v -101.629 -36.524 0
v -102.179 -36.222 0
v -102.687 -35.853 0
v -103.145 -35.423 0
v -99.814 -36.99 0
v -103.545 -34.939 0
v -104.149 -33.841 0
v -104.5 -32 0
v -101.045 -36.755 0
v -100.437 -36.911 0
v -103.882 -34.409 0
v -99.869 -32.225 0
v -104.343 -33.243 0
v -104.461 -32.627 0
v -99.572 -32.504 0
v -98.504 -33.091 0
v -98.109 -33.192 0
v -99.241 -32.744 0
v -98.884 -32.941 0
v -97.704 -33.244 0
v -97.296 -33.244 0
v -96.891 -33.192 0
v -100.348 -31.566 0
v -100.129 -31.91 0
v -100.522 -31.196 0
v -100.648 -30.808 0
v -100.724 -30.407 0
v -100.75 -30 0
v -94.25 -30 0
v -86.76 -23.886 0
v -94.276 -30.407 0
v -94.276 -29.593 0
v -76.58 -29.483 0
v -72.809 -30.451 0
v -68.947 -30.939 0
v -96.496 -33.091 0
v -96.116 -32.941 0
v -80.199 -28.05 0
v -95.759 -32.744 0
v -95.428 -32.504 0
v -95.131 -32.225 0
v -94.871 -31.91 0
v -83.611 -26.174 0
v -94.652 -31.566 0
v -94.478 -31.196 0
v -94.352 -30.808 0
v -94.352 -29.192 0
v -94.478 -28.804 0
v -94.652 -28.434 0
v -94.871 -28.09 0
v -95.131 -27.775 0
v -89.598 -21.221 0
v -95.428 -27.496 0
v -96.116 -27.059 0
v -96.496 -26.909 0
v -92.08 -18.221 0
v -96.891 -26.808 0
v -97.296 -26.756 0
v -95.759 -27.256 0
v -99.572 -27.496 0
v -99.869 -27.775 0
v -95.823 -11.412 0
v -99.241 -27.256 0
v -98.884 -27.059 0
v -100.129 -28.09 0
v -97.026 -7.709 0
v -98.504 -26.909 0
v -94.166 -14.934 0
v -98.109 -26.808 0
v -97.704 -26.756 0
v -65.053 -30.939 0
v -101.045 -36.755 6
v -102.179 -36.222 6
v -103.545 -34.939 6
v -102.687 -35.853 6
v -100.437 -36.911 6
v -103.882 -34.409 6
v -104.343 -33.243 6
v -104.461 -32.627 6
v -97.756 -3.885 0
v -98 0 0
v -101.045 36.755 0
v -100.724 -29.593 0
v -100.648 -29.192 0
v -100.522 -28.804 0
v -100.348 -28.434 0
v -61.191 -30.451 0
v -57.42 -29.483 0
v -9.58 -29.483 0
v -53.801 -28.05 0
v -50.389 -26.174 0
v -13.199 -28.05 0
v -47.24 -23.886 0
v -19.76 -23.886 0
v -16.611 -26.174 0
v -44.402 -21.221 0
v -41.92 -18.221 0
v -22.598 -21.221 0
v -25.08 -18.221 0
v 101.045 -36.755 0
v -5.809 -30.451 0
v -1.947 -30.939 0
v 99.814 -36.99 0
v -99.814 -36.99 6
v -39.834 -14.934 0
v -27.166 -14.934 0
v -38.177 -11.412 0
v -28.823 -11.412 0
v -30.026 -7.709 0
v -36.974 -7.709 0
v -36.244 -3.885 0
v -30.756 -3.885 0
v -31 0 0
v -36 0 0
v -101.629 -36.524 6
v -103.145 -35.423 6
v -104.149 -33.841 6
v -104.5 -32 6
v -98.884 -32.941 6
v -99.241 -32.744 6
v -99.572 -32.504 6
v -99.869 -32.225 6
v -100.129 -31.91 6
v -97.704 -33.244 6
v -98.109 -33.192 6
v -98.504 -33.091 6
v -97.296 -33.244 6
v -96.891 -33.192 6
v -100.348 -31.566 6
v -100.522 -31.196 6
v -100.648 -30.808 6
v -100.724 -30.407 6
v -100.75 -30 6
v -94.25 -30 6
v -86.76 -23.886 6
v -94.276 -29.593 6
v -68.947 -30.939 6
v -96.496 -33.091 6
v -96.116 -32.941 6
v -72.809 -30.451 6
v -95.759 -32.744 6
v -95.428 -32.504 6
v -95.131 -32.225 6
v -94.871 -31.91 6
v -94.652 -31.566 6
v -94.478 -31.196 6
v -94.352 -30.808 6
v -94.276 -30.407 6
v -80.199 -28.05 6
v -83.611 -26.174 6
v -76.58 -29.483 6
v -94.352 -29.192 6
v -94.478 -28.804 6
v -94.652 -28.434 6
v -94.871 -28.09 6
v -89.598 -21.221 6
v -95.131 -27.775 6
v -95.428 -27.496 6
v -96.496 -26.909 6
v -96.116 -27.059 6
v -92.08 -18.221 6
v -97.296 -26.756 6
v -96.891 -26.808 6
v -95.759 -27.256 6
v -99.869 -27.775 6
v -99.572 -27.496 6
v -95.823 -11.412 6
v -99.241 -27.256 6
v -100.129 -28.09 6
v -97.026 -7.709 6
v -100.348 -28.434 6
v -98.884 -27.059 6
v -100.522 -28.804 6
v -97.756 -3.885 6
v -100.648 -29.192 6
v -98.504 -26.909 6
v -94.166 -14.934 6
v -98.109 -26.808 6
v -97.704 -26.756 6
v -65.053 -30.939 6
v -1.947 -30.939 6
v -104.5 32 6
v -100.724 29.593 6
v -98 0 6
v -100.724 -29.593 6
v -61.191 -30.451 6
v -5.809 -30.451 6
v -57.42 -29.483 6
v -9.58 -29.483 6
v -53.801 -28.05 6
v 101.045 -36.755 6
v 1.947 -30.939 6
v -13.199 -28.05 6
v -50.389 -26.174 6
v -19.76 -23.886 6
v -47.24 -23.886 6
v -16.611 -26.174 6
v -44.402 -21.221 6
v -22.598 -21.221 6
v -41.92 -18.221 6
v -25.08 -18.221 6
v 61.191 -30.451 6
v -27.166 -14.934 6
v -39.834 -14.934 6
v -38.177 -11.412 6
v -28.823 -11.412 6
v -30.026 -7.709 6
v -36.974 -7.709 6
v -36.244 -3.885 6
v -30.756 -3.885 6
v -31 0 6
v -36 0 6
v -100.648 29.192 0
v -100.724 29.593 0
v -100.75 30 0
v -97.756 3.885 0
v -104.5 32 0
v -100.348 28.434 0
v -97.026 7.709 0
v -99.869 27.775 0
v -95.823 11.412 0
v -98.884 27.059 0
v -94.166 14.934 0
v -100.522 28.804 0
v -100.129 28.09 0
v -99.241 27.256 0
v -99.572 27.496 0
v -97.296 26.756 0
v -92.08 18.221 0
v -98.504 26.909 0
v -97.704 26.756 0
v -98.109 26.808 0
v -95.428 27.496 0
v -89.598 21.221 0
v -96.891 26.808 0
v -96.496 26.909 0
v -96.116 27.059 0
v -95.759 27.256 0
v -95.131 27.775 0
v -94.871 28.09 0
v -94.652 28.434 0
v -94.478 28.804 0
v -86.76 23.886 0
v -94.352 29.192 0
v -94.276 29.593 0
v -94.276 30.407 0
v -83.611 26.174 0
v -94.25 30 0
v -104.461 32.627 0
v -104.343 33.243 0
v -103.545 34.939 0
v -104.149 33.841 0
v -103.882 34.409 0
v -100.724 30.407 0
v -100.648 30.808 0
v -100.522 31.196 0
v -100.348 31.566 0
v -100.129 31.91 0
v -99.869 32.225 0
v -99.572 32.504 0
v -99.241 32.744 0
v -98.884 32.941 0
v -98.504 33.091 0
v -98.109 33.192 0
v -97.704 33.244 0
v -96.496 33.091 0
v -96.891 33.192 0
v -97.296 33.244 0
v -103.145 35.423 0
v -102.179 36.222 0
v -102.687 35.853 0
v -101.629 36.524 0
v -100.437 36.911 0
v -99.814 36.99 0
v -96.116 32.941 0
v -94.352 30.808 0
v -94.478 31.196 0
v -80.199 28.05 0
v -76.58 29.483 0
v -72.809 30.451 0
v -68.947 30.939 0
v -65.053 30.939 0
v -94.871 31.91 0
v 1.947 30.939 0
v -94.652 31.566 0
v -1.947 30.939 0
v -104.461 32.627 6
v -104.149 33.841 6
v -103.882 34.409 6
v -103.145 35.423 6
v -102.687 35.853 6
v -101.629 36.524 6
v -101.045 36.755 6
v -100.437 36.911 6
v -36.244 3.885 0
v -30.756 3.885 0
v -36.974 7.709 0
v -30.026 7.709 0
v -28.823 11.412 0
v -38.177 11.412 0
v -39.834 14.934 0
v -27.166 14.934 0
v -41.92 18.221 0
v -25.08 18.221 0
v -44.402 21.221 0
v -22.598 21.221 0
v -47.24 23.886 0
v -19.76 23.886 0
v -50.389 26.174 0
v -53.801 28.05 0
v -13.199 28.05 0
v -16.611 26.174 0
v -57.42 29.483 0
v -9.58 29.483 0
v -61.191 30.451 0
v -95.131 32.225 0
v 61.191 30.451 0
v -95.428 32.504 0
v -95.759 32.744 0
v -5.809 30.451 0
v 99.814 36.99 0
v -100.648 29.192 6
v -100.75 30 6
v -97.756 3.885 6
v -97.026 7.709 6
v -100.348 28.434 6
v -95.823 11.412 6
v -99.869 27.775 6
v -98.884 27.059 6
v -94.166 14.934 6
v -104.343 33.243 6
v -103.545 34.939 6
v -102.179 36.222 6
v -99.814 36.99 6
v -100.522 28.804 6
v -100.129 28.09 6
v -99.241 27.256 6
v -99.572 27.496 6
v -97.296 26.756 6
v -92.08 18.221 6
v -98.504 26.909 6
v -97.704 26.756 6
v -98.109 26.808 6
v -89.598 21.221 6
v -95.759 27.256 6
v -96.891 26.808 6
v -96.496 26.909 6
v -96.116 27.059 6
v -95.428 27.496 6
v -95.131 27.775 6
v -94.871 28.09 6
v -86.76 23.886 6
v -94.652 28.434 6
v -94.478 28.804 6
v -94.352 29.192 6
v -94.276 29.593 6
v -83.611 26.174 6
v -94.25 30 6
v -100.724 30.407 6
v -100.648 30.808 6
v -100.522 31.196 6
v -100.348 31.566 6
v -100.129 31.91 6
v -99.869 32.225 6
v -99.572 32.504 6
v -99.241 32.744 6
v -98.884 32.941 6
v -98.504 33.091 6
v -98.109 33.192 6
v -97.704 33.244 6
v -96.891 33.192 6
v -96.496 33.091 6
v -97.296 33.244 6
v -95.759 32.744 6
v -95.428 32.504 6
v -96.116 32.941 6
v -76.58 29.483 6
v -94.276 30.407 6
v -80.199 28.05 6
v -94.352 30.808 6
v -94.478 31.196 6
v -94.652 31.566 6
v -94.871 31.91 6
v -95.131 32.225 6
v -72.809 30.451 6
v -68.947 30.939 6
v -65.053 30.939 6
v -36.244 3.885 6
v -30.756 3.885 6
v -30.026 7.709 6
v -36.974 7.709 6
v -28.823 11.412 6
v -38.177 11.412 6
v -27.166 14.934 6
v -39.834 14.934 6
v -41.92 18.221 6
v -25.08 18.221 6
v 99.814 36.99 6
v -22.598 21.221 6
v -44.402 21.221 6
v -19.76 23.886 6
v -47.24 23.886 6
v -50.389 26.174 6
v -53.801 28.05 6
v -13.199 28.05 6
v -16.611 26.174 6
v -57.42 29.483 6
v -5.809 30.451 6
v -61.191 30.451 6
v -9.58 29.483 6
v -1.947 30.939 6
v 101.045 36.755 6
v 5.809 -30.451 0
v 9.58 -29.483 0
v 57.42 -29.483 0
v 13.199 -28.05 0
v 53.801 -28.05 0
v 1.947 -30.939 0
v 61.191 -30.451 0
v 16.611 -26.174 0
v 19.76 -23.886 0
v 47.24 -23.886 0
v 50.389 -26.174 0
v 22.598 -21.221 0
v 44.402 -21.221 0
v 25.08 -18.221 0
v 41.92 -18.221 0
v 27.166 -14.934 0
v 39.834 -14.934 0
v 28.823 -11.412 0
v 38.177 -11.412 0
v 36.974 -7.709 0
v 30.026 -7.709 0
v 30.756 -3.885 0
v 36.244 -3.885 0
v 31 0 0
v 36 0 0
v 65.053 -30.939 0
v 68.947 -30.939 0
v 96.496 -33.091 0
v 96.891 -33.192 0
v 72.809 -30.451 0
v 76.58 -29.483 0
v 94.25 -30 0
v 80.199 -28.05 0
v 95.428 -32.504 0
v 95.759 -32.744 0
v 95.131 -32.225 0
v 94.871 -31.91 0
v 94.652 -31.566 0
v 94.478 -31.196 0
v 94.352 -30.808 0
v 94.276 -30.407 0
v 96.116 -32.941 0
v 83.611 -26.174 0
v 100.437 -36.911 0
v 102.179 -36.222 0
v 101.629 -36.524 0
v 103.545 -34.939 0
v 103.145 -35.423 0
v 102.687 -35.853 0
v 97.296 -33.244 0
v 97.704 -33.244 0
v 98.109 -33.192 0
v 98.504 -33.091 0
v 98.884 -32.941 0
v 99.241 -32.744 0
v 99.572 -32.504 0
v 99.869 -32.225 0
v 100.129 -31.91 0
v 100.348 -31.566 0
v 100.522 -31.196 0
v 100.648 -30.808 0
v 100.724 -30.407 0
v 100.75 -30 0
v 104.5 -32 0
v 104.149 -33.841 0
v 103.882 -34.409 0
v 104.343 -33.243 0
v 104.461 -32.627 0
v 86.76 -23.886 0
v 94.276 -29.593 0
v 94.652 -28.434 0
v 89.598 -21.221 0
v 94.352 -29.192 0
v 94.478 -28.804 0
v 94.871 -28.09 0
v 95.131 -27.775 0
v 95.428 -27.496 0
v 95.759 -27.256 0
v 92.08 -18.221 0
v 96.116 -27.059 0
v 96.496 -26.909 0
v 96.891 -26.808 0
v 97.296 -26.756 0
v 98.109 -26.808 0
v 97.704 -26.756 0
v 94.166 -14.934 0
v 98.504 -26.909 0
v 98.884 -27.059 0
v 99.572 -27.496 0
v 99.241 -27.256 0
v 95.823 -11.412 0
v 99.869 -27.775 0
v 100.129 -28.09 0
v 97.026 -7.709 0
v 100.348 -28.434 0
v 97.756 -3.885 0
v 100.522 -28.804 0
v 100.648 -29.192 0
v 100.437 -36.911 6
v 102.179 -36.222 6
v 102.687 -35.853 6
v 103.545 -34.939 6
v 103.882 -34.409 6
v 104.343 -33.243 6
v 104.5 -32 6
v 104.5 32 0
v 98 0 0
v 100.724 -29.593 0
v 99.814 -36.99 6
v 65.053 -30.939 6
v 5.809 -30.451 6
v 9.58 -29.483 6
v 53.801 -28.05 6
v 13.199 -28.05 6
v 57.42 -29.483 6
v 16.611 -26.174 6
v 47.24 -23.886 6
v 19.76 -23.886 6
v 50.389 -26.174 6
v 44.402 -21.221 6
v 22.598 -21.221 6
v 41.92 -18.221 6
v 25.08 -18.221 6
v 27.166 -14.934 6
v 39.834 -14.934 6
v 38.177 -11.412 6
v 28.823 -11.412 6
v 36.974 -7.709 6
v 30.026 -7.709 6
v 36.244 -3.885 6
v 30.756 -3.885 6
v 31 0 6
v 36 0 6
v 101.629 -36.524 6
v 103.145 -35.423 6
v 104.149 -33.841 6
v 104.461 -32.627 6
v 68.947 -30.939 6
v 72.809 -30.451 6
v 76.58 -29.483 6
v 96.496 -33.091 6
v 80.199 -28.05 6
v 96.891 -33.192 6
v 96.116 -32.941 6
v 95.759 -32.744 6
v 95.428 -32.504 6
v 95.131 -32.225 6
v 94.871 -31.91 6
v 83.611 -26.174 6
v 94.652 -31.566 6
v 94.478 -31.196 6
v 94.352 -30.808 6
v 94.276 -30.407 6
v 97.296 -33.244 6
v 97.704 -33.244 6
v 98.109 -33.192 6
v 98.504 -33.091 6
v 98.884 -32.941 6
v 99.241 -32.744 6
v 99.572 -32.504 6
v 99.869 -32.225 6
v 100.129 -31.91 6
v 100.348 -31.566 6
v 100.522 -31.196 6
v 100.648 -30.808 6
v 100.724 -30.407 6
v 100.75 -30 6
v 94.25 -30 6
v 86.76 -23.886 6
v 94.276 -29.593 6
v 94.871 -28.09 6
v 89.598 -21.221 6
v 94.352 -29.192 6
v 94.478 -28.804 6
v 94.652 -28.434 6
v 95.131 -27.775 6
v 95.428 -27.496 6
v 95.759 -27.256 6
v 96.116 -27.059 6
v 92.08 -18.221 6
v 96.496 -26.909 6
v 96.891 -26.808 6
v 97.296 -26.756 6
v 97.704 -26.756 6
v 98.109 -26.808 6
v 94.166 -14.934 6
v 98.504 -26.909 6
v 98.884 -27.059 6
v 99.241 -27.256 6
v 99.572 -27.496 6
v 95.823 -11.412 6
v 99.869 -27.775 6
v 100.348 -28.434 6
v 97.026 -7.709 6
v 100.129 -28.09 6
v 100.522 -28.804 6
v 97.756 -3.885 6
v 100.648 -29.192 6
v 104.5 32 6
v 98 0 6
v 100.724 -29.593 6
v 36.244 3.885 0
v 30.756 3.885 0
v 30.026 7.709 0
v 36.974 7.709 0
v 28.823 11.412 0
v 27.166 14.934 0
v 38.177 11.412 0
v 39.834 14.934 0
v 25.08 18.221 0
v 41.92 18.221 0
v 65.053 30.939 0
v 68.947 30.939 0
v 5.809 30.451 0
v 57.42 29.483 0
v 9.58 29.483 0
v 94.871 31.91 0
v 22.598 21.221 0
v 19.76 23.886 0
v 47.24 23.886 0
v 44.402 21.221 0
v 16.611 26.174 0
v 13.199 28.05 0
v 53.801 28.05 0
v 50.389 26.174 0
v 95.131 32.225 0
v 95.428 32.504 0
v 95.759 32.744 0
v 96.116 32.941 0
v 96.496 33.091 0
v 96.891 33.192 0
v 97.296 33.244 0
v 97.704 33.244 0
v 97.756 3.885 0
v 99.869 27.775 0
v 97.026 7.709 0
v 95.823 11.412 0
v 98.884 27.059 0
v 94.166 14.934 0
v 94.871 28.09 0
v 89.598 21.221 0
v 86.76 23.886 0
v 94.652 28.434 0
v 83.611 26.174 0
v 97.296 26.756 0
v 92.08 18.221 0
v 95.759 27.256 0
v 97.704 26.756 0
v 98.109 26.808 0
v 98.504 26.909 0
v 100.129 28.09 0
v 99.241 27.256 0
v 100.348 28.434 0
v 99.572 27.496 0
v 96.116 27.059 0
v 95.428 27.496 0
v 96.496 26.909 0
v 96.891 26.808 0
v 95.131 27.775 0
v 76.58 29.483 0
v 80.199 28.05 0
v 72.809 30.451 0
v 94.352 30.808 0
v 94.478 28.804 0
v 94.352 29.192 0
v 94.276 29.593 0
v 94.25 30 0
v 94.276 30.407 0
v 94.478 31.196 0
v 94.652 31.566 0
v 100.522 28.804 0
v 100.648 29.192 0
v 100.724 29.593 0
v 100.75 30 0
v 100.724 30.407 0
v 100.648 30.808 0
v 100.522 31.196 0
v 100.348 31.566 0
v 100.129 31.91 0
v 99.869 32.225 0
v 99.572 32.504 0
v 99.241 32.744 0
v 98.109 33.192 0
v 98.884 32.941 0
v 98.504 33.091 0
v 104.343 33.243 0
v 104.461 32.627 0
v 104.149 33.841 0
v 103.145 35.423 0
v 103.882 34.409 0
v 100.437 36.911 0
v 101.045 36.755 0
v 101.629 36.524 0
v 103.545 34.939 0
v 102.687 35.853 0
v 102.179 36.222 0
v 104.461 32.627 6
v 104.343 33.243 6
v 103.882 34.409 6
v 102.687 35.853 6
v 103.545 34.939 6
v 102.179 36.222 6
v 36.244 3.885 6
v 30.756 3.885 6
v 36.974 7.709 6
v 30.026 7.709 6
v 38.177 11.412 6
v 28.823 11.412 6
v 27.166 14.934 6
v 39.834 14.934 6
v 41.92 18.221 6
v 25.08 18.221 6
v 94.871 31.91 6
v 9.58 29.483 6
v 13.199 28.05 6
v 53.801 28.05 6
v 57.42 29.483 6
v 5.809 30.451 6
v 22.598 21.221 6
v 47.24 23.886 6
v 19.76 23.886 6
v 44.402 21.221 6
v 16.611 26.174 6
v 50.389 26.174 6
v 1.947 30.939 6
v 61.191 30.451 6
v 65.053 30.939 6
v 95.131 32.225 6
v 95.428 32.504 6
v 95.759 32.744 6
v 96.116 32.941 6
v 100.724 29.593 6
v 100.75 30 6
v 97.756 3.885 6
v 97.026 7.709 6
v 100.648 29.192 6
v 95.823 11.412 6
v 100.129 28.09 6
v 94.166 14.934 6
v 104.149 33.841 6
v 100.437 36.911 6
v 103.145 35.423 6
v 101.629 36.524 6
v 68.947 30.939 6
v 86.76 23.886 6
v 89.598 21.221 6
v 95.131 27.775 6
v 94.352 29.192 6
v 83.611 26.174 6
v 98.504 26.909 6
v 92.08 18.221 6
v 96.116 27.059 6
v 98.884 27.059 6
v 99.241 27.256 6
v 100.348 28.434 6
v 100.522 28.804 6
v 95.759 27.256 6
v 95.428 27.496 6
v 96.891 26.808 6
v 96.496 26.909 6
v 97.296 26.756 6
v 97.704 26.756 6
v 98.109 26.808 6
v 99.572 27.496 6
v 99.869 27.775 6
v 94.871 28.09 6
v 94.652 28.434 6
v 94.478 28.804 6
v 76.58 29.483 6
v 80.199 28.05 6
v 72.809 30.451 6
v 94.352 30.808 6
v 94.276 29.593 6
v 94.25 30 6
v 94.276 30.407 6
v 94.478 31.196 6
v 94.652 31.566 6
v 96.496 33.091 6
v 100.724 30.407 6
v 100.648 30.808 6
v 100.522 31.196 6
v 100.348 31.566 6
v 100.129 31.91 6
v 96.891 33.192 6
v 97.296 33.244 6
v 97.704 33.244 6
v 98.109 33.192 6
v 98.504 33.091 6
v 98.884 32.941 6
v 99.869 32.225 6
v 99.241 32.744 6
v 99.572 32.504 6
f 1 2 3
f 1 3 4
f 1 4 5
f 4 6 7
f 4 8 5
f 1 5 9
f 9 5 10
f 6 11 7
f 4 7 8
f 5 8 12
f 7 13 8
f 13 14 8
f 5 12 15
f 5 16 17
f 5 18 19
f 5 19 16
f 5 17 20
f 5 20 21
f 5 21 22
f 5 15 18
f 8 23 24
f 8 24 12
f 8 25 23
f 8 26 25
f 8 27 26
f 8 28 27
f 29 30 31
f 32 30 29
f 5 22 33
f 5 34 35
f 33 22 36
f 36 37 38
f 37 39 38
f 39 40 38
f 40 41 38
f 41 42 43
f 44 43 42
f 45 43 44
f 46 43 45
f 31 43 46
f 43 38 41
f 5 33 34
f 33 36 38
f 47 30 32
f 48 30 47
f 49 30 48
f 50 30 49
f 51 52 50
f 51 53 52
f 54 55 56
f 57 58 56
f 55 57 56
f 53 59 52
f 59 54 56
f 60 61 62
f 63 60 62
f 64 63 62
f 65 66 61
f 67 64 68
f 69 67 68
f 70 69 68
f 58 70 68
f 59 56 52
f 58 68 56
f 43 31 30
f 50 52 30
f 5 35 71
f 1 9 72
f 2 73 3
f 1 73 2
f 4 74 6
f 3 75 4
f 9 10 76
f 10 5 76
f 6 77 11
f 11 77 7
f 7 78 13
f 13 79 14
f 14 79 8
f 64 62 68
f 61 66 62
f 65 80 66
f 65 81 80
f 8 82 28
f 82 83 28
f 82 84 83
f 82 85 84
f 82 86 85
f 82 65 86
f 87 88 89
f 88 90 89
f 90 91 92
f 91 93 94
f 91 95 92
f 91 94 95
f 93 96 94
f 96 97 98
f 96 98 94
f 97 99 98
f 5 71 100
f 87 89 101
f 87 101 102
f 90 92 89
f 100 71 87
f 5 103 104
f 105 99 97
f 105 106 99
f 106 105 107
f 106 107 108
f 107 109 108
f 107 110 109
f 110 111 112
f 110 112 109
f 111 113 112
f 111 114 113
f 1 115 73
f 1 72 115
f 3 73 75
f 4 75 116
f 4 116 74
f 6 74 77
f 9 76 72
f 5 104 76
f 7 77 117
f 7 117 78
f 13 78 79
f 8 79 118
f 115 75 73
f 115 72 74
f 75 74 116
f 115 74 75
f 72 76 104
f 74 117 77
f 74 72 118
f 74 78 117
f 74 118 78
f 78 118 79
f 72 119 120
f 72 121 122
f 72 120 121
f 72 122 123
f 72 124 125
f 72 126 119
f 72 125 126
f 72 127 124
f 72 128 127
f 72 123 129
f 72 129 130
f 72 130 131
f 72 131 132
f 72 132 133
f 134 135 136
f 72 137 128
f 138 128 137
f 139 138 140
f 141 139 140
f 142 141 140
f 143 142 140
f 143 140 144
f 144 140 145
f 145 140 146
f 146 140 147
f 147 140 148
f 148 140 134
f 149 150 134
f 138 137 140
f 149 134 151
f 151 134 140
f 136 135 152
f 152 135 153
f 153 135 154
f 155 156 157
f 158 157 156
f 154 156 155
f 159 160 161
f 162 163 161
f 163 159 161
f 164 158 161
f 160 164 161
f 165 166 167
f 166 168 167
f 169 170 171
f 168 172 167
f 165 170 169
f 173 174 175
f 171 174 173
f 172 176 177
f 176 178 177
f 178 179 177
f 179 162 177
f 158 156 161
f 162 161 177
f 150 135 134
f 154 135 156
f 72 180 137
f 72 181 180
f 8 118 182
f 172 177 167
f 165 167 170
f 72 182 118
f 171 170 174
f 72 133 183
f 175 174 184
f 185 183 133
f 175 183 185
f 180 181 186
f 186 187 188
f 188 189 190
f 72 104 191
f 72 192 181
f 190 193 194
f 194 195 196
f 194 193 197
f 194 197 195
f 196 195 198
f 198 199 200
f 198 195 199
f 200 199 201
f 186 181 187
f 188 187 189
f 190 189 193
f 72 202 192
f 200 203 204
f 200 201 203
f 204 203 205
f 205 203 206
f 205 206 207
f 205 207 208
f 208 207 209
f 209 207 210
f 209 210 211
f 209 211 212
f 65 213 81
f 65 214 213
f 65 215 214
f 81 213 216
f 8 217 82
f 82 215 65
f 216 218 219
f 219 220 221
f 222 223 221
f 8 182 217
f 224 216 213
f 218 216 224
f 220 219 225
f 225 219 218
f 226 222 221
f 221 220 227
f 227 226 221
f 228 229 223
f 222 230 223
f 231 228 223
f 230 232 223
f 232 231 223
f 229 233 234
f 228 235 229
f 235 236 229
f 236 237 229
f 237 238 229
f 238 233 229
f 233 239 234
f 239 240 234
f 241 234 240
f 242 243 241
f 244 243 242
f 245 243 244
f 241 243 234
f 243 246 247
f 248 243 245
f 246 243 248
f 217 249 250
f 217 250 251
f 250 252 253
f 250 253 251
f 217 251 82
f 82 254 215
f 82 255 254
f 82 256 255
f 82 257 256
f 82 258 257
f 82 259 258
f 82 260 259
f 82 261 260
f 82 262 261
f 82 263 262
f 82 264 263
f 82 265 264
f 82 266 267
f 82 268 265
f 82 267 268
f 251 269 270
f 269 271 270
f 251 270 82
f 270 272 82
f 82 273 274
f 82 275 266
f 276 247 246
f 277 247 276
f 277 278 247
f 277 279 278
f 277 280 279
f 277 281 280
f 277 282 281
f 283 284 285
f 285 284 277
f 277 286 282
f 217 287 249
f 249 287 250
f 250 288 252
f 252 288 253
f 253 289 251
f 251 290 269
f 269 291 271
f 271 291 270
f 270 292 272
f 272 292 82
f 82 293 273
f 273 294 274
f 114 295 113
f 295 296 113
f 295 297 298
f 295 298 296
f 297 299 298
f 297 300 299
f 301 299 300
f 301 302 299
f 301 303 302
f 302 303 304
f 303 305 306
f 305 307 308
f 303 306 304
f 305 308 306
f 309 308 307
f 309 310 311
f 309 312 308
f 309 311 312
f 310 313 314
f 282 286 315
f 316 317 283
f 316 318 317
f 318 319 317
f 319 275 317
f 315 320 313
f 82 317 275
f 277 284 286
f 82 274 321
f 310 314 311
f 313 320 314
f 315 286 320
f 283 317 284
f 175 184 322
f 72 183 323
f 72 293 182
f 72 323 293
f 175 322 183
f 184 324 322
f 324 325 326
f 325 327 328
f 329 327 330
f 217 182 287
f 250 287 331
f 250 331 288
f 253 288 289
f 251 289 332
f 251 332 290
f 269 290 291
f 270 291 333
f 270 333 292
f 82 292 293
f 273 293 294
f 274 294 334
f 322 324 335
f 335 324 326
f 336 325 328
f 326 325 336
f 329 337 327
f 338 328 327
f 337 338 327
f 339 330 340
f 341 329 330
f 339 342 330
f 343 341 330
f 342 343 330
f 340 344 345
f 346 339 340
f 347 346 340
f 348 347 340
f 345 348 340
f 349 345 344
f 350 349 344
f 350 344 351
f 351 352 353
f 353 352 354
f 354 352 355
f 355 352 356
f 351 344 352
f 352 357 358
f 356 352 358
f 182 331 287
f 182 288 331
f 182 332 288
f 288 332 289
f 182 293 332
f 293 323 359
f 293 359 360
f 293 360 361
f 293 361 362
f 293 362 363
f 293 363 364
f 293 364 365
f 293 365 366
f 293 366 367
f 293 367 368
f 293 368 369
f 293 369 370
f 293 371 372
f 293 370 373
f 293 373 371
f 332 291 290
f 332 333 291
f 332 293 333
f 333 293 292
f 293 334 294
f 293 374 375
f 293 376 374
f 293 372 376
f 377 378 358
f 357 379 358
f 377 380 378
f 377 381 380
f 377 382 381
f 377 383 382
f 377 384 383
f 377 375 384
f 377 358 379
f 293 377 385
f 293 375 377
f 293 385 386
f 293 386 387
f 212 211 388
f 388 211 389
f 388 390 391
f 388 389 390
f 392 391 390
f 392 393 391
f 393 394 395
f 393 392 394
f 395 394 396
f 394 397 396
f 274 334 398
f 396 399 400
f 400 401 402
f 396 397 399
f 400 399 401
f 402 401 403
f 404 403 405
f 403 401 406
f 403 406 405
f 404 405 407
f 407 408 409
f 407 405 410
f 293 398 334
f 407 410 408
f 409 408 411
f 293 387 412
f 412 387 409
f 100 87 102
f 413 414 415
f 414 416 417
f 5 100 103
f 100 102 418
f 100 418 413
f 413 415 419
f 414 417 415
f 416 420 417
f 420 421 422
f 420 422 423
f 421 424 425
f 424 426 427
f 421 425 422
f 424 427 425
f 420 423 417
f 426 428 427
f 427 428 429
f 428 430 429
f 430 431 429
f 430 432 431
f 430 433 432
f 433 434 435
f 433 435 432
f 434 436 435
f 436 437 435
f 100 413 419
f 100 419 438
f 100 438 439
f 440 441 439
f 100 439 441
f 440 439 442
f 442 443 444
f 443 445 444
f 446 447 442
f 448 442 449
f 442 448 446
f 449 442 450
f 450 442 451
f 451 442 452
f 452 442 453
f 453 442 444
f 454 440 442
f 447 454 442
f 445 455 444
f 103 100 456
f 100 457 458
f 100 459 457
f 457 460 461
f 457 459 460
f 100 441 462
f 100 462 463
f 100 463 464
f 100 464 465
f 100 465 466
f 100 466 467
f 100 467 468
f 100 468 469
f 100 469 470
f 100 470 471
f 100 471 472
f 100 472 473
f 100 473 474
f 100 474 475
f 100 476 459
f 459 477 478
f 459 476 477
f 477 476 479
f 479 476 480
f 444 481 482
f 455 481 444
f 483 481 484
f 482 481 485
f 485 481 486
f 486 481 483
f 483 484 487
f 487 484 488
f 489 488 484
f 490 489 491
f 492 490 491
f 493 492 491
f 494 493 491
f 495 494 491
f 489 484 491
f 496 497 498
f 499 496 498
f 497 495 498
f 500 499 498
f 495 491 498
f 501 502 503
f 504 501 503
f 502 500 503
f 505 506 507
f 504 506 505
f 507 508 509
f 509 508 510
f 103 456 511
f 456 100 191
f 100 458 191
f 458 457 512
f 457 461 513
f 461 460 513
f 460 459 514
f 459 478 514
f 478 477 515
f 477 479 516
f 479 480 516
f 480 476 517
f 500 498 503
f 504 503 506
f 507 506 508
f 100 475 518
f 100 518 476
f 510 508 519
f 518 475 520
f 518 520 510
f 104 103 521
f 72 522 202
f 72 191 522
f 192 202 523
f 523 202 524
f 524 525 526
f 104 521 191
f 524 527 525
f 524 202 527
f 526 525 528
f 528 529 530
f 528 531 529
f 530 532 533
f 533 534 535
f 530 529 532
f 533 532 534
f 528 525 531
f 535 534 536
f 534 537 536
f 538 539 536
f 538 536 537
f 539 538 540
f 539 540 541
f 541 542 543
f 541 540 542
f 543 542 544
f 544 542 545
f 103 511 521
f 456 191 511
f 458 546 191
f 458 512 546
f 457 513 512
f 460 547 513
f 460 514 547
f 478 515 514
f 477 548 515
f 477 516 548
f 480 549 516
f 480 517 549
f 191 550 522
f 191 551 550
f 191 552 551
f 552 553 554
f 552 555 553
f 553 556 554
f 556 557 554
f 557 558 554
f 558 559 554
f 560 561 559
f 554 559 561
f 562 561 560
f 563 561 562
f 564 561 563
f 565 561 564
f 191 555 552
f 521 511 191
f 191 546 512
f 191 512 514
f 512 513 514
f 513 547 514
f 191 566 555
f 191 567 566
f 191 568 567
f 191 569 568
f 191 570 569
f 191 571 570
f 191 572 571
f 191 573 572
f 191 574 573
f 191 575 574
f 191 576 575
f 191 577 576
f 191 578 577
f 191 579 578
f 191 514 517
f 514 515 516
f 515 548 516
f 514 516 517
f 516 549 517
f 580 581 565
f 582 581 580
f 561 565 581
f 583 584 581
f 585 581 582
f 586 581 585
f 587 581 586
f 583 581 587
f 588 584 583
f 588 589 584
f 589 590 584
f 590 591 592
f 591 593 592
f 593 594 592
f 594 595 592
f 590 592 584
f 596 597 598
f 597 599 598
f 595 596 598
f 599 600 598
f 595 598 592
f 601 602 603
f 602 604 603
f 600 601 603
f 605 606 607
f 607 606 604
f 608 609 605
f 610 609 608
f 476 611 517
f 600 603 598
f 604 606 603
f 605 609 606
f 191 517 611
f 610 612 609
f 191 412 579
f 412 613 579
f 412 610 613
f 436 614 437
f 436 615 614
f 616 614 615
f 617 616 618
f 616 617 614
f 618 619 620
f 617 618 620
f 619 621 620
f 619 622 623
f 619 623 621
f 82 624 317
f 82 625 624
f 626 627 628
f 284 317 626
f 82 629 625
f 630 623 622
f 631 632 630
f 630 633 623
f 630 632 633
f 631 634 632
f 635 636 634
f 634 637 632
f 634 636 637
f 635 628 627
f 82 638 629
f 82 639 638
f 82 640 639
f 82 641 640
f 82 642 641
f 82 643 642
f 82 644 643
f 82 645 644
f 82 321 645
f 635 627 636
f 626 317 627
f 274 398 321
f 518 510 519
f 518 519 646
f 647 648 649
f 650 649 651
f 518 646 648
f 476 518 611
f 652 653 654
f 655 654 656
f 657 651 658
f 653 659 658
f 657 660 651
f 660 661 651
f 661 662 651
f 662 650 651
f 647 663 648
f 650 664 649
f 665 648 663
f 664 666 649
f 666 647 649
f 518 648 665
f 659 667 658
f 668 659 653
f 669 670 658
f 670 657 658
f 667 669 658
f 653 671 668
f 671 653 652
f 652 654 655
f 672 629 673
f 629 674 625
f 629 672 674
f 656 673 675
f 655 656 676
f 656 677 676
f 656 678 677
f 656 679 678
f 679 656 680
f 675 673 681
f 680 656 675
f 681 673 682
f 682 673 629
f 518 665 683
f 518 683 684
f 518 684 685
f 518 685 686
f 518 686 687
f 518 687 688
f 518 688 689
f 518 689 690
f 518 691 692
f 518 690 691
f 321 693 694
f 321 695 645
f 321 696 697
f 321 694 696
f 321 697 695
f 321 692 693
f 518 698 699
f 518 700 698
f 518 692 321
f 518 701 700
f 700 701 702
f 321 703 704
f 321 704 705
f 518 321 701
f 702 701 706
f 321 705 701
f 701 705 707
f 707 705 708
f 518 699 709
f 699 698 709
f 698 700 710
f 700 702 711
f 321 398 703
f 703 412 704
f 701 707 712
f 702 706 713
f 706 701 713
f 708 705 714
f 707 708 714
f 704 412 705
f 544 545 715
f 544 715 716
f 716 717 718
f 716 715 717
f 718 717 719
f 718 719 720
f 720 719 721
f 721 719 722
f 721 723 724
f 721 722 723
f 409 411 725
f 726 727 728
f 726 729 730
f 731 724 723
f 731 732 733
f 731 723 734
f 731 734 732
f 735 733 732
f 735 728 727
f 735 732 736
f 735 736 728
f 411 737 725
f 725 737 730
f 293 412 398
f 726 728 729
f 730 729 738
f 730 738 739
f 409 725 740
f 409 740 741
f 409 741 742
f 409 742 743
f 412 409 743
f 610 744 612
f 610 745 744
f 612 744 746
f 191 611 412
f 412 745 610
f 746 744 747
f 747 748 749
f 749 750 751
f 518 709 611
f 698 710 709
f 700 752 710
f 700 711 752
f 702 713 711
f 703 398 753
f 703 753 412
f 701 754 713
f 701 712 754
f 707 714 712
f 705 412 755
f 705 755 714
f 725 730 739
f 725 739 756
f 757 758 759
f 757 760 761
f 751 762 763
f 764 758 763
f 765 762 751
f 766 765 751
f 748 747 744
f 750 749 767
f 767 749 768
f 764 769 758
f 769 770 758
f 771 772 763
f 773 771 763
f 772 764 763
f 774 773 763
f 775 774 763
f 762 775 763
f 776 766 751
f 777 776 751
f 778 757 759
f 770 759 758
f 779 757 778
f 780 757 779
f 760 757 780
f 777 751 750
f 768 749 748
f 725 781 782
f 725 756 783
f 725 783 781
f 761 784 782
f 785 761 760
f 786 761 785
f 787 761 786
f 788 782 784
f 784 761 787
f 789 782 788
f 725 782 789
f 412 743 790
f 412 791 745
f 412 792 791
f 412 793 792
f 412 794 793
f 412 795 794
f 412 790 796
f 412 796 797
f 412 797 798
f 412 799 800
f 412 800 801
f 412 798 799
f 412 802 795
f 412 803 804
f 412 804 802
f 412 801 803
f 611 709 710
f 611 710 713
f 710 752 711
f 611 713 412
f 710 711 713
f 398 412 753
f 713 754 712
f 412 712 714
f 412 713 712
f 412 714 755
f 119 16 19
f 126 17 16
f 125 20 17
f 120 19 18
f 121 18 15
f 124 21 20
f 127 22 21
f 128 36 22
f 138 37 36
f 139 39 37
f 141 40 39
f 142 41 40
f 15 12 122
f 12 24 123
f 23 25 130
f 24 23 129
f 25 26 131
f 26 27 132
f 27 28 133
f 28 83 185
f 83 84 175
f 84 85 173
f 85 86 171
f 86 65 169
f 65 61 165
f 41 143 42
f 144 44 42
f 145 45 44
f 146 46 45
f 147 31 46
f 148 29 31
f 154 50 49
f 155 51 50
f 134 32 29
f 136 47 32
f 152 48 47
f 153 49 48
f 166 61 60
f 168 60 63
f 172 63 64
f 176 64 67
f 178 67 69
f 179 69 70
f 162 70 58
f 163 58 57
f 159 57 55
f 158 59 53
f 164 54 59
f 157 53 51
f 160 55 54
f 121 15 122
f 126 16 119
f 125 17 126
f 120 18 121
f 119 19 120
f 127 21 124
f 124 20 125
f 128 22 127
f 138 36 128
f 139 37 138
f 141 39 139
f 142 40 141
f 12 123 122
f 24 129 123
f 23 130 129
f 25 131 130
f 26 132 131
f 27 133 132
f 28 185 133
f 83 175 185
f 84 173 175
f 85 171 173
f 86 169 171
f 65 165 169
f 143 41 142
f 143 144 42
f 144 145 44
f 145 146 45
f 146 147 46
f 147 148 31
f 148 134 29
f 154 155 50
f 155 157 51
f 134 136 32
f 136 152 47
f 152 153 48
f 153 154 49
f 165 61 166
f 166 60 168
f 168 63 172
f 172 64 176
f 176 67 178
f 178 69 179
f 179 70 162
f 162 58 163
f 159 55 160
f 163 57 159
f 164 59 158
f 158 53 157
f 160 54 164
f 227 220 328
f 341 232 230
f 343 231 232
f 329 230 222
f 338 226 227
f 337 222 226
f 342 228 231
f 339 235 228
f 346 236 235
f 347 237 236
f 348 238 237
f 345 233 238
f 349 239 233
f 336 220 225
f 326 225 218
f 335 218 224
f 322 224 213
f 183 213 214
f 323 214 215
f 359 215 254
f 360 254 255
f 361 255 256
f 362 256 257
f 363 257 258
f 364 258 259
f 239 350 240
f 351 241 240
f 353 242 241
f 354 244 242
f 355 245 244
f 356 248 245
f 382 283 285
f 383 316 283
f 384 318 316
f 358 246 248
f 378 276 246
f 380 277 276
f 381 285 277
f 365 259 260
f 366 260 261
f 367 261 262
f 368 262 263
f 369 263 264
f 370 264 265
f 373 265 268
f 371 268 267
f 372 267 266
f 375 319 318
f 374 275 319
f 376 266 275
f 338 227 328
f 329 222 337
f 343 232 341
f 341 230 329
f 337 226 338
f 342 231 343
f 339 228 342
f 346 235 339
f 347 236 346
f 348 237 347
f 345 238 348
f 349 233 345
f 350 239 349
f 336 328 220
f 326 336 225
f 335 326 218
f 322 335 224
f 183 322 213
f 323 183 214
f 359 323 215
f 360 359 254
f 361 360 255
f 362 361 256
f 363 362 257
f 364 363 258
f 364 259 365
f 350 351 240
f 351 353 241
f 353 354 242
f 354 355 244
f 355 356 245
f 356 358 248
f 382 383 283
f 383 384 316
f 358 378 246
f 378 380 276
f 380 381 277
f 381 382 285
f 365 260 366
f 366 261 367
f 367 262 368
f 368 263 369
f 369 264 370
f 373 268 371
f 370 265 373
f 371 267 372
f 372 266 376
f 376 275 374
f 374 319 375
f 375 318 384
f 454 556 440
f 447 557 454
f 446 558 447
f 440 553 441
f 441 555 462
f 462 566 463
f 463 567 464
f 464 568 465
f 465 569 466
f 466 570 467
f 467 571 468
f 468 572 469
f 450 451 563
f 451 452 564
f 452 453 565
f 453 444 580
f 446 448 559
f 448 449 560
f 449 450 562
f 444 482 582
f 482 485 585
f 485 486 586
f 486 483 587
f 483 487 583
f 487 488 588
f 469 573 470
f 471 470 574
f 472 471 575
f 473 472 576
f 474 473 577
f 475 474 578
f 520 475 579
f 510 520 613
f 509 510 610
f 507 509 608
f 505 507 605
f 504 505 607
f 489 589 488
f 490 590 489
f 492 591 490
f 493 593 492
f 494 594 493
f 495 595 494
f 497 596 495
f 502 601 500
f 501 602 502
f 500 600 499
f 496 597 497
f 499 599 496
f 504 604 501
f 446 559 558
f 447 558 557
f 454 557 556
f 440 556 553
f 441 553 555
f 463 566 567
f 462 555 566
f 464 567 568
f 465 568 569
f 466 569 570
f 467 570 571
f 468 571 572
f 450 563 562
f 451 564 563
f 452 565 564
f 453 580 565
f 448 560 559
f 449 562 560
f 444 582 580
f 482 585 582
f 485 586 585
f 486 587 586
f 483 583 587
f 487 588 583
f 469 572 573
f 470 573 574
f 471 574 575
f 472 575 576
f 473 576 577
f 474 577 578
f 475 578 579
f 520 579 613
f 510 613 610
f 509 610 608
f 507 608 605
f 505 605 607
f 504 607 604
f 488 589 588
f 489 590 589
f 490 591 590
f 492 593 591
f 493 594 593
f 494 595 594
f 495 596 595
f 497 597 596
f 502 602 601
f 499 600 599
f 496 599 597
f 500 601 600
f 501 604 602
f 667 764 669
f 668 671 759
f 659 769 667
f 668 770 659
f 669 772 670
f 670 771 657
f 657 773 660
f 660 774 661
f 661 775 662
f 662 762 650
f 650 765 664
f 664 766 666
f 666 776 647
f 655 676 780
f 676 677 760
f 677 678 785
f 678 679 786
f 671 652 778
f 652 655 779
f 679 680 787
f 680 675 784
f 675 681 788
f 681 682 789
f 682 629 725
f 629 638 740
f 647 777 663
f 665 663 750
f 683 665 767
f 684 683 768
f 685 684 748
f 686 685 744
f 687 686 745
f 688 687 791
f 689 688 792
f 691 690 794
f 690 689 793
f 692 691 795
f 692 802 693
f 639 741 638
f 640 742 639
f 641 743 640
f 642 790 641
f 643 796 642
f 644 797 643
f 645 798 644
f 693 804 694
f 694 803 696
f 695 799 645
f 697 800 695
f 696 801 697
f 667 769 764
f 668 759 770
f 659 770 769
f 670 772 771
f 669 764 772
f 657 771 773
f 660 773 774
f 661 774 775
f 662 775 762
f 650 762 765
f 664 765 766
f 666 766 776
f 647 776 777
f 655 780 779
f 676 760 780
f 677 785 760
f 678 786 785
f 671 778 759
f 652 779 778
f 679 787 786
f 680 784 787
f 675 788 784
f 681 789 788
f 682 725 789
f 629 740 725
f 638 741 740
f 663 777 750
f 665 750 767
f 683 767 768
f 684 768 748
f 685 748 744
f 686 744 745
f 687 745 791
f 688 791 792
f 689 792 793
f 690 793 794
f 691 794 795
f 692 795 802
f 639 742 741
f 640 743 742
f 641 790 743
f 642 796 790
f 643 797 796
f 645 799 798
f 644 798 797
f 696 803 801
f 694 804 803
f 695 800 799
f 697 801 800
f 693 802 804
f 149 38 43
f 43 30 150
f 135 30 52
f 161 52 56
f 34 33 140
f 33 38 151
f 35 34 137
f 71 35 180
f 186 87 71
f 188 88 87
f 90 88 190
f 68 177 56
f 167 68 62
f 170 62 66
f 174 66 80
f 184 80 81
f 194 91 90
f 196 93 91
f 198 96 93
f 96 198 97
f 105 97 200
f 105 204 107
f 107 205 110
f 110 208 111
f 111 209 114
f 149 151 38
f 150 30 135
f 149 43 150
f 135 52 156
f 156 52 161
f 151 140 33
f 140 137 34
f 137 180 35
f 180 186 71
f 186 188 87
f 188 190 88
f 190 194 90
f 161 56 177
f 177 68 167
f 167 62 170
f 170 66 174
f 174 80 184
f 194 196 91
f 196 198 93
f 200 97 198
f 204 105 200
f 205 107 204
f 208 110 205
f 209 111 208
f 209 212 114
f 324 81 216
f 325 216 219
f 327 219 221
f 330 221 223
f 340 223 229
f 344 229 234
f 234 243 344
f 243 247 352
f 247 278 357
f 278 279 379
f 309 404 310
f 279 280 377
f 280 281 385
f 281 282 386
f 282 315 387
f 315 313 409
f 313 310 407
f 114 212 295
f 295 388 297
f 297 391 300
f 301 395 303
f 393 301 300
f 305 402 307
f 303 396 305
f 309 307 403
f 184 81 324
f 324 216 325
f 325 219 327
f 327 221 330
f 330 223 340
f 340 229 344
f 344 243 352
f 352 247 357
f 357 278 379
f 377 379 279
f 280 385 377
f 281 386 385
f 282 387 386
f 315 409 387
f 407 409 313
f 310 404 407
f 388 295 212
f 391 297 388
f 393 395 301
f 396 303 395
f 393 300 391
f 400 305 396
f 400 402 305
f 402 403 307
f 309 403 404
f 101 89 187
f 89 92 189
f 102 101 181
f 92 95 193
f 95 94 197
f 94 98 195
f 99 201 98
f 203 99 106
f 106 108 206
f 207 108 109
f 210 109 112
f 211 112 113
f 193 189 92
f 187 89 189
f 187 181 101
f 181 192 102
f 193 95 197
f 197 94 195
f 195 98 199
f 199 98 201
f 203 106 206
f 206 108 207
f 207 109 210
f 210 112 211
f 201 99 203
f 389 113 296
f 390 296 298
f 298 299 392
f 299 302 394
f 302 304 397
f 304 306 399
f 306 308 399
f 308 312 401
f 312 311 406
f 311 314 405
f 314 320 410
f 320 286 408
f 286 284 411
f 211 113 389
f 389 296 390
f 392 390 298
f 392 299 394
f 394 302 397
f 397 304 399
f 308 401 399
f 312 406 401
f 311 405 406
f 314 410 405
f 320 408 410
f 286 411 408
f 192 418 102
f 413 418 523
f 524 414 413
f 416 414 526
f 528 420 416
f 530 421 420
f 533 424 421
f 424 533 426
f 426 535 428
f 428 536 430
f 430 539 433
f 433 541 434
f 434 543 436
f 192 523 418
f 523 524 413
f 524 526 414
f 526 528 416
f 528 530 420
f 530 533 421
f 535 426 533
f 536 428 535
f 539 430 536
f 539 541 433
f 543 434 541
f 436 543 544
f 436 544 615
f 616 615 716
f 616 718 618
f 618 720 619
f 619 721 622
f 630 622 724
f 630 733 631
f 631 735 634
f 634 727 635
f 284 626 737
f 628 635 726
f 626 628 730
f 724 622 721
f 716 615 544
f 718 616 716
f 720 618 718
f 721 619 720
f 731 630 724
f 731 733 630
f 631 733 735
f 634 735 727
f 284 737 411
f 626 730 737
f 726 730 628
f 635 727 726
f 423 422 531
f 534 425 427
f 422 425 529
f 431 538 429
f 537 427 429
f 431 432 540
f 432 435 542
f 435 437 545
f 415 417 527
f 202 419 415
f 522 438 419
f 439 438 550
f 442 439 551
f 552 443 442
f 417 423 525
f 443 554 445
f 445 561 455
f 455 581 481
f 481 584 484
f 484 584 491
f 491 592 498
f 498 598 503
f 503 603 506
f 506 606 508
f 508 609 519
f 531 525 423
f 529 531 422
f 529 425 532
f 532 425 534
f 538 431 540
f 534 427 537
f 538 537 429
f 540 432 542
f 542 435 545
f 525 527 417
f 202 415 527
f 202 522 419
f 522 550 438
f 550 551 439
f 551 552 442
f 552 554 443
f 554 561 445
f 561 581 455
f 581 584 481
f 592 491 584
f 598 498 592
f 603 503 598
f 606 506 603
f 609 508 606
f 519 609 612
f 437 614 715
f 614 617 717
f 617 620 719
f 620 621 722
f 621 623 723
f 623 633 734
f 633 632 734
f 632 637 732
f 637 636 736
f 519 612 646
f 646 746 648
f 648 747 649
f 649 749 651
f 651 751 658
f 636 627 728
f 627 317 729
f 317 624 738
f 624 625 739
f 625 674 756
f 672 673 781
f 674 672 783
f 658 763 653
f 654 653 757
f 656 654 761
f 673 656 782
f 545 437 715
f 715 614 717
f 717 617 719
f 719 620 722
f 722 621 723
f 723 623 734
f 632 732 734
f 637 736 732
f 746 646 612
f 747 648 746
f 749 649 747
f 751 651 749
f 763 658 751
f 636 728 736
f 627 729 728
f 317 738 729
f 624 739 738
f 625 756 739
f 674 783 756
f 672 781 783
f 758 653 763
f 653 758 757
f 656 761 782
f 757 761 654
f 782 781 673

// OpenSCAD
$fn = 50;

difference() {
	union() {
		hull() {
			translate(v = [-99.5, 32.0, 0]) {
				cylinder(h = 6, r = 5);
			}
			translate(v = [99.5, 32.0, 0]) {
				cylinder(h = 6, r = 5);
			}
			translate(v = [-99.5, -32.0, 0]) {
				cylinder(h = 6, r = 5);
			}
			translate(v = [99.5, -32.0, 0]) {
				cylinder(h = 6, r = 5);
			}
		}
	}
	union() {
		translate(v = [-97.5, -30.0, -100.0]) {
			cylinder(h = 200, r = 3.25);
		}
		translate(v = [-97.5, 30.0, -100.0]) {
			cylinder(h = 200, r = 3.25);
		}
		translate(v = [97.5, -30.0, -100.0]) {
			cylinder(h = 200, r = 3.25);
		}
		translate(v = [97.5, 30.0, -100.0]) {
			cylinder(h = 200, r = 3.25);
		}
		translate(v = [-97.5, -30.0, -100.0]) {
			cylinder(h = 200, r = 1.8);
		}
		translate(v = [-97.5, 30.0, -100.0]) {
			cylinder(h = 200, r = 1.8);
		}
		translate(v = [97.5, -30.0, -100.0]) {
			cylinder(h = 200, r = 1.8);
		}
		translate(v = [97.5, 30.0, -100.0]) {
			cylinder(h = 200, r = 1.8);
		}
		translate(v = [-67.0, 0, 0.0]) {
			cylinder(h = 6, r = 31.0);
		}
		cylinder(h = 6, r = 31.0);
		translate(v = [67.0, 0, 0.0]) {
			cylinder(h = 6, r = 31.0);
		}
	}
}
